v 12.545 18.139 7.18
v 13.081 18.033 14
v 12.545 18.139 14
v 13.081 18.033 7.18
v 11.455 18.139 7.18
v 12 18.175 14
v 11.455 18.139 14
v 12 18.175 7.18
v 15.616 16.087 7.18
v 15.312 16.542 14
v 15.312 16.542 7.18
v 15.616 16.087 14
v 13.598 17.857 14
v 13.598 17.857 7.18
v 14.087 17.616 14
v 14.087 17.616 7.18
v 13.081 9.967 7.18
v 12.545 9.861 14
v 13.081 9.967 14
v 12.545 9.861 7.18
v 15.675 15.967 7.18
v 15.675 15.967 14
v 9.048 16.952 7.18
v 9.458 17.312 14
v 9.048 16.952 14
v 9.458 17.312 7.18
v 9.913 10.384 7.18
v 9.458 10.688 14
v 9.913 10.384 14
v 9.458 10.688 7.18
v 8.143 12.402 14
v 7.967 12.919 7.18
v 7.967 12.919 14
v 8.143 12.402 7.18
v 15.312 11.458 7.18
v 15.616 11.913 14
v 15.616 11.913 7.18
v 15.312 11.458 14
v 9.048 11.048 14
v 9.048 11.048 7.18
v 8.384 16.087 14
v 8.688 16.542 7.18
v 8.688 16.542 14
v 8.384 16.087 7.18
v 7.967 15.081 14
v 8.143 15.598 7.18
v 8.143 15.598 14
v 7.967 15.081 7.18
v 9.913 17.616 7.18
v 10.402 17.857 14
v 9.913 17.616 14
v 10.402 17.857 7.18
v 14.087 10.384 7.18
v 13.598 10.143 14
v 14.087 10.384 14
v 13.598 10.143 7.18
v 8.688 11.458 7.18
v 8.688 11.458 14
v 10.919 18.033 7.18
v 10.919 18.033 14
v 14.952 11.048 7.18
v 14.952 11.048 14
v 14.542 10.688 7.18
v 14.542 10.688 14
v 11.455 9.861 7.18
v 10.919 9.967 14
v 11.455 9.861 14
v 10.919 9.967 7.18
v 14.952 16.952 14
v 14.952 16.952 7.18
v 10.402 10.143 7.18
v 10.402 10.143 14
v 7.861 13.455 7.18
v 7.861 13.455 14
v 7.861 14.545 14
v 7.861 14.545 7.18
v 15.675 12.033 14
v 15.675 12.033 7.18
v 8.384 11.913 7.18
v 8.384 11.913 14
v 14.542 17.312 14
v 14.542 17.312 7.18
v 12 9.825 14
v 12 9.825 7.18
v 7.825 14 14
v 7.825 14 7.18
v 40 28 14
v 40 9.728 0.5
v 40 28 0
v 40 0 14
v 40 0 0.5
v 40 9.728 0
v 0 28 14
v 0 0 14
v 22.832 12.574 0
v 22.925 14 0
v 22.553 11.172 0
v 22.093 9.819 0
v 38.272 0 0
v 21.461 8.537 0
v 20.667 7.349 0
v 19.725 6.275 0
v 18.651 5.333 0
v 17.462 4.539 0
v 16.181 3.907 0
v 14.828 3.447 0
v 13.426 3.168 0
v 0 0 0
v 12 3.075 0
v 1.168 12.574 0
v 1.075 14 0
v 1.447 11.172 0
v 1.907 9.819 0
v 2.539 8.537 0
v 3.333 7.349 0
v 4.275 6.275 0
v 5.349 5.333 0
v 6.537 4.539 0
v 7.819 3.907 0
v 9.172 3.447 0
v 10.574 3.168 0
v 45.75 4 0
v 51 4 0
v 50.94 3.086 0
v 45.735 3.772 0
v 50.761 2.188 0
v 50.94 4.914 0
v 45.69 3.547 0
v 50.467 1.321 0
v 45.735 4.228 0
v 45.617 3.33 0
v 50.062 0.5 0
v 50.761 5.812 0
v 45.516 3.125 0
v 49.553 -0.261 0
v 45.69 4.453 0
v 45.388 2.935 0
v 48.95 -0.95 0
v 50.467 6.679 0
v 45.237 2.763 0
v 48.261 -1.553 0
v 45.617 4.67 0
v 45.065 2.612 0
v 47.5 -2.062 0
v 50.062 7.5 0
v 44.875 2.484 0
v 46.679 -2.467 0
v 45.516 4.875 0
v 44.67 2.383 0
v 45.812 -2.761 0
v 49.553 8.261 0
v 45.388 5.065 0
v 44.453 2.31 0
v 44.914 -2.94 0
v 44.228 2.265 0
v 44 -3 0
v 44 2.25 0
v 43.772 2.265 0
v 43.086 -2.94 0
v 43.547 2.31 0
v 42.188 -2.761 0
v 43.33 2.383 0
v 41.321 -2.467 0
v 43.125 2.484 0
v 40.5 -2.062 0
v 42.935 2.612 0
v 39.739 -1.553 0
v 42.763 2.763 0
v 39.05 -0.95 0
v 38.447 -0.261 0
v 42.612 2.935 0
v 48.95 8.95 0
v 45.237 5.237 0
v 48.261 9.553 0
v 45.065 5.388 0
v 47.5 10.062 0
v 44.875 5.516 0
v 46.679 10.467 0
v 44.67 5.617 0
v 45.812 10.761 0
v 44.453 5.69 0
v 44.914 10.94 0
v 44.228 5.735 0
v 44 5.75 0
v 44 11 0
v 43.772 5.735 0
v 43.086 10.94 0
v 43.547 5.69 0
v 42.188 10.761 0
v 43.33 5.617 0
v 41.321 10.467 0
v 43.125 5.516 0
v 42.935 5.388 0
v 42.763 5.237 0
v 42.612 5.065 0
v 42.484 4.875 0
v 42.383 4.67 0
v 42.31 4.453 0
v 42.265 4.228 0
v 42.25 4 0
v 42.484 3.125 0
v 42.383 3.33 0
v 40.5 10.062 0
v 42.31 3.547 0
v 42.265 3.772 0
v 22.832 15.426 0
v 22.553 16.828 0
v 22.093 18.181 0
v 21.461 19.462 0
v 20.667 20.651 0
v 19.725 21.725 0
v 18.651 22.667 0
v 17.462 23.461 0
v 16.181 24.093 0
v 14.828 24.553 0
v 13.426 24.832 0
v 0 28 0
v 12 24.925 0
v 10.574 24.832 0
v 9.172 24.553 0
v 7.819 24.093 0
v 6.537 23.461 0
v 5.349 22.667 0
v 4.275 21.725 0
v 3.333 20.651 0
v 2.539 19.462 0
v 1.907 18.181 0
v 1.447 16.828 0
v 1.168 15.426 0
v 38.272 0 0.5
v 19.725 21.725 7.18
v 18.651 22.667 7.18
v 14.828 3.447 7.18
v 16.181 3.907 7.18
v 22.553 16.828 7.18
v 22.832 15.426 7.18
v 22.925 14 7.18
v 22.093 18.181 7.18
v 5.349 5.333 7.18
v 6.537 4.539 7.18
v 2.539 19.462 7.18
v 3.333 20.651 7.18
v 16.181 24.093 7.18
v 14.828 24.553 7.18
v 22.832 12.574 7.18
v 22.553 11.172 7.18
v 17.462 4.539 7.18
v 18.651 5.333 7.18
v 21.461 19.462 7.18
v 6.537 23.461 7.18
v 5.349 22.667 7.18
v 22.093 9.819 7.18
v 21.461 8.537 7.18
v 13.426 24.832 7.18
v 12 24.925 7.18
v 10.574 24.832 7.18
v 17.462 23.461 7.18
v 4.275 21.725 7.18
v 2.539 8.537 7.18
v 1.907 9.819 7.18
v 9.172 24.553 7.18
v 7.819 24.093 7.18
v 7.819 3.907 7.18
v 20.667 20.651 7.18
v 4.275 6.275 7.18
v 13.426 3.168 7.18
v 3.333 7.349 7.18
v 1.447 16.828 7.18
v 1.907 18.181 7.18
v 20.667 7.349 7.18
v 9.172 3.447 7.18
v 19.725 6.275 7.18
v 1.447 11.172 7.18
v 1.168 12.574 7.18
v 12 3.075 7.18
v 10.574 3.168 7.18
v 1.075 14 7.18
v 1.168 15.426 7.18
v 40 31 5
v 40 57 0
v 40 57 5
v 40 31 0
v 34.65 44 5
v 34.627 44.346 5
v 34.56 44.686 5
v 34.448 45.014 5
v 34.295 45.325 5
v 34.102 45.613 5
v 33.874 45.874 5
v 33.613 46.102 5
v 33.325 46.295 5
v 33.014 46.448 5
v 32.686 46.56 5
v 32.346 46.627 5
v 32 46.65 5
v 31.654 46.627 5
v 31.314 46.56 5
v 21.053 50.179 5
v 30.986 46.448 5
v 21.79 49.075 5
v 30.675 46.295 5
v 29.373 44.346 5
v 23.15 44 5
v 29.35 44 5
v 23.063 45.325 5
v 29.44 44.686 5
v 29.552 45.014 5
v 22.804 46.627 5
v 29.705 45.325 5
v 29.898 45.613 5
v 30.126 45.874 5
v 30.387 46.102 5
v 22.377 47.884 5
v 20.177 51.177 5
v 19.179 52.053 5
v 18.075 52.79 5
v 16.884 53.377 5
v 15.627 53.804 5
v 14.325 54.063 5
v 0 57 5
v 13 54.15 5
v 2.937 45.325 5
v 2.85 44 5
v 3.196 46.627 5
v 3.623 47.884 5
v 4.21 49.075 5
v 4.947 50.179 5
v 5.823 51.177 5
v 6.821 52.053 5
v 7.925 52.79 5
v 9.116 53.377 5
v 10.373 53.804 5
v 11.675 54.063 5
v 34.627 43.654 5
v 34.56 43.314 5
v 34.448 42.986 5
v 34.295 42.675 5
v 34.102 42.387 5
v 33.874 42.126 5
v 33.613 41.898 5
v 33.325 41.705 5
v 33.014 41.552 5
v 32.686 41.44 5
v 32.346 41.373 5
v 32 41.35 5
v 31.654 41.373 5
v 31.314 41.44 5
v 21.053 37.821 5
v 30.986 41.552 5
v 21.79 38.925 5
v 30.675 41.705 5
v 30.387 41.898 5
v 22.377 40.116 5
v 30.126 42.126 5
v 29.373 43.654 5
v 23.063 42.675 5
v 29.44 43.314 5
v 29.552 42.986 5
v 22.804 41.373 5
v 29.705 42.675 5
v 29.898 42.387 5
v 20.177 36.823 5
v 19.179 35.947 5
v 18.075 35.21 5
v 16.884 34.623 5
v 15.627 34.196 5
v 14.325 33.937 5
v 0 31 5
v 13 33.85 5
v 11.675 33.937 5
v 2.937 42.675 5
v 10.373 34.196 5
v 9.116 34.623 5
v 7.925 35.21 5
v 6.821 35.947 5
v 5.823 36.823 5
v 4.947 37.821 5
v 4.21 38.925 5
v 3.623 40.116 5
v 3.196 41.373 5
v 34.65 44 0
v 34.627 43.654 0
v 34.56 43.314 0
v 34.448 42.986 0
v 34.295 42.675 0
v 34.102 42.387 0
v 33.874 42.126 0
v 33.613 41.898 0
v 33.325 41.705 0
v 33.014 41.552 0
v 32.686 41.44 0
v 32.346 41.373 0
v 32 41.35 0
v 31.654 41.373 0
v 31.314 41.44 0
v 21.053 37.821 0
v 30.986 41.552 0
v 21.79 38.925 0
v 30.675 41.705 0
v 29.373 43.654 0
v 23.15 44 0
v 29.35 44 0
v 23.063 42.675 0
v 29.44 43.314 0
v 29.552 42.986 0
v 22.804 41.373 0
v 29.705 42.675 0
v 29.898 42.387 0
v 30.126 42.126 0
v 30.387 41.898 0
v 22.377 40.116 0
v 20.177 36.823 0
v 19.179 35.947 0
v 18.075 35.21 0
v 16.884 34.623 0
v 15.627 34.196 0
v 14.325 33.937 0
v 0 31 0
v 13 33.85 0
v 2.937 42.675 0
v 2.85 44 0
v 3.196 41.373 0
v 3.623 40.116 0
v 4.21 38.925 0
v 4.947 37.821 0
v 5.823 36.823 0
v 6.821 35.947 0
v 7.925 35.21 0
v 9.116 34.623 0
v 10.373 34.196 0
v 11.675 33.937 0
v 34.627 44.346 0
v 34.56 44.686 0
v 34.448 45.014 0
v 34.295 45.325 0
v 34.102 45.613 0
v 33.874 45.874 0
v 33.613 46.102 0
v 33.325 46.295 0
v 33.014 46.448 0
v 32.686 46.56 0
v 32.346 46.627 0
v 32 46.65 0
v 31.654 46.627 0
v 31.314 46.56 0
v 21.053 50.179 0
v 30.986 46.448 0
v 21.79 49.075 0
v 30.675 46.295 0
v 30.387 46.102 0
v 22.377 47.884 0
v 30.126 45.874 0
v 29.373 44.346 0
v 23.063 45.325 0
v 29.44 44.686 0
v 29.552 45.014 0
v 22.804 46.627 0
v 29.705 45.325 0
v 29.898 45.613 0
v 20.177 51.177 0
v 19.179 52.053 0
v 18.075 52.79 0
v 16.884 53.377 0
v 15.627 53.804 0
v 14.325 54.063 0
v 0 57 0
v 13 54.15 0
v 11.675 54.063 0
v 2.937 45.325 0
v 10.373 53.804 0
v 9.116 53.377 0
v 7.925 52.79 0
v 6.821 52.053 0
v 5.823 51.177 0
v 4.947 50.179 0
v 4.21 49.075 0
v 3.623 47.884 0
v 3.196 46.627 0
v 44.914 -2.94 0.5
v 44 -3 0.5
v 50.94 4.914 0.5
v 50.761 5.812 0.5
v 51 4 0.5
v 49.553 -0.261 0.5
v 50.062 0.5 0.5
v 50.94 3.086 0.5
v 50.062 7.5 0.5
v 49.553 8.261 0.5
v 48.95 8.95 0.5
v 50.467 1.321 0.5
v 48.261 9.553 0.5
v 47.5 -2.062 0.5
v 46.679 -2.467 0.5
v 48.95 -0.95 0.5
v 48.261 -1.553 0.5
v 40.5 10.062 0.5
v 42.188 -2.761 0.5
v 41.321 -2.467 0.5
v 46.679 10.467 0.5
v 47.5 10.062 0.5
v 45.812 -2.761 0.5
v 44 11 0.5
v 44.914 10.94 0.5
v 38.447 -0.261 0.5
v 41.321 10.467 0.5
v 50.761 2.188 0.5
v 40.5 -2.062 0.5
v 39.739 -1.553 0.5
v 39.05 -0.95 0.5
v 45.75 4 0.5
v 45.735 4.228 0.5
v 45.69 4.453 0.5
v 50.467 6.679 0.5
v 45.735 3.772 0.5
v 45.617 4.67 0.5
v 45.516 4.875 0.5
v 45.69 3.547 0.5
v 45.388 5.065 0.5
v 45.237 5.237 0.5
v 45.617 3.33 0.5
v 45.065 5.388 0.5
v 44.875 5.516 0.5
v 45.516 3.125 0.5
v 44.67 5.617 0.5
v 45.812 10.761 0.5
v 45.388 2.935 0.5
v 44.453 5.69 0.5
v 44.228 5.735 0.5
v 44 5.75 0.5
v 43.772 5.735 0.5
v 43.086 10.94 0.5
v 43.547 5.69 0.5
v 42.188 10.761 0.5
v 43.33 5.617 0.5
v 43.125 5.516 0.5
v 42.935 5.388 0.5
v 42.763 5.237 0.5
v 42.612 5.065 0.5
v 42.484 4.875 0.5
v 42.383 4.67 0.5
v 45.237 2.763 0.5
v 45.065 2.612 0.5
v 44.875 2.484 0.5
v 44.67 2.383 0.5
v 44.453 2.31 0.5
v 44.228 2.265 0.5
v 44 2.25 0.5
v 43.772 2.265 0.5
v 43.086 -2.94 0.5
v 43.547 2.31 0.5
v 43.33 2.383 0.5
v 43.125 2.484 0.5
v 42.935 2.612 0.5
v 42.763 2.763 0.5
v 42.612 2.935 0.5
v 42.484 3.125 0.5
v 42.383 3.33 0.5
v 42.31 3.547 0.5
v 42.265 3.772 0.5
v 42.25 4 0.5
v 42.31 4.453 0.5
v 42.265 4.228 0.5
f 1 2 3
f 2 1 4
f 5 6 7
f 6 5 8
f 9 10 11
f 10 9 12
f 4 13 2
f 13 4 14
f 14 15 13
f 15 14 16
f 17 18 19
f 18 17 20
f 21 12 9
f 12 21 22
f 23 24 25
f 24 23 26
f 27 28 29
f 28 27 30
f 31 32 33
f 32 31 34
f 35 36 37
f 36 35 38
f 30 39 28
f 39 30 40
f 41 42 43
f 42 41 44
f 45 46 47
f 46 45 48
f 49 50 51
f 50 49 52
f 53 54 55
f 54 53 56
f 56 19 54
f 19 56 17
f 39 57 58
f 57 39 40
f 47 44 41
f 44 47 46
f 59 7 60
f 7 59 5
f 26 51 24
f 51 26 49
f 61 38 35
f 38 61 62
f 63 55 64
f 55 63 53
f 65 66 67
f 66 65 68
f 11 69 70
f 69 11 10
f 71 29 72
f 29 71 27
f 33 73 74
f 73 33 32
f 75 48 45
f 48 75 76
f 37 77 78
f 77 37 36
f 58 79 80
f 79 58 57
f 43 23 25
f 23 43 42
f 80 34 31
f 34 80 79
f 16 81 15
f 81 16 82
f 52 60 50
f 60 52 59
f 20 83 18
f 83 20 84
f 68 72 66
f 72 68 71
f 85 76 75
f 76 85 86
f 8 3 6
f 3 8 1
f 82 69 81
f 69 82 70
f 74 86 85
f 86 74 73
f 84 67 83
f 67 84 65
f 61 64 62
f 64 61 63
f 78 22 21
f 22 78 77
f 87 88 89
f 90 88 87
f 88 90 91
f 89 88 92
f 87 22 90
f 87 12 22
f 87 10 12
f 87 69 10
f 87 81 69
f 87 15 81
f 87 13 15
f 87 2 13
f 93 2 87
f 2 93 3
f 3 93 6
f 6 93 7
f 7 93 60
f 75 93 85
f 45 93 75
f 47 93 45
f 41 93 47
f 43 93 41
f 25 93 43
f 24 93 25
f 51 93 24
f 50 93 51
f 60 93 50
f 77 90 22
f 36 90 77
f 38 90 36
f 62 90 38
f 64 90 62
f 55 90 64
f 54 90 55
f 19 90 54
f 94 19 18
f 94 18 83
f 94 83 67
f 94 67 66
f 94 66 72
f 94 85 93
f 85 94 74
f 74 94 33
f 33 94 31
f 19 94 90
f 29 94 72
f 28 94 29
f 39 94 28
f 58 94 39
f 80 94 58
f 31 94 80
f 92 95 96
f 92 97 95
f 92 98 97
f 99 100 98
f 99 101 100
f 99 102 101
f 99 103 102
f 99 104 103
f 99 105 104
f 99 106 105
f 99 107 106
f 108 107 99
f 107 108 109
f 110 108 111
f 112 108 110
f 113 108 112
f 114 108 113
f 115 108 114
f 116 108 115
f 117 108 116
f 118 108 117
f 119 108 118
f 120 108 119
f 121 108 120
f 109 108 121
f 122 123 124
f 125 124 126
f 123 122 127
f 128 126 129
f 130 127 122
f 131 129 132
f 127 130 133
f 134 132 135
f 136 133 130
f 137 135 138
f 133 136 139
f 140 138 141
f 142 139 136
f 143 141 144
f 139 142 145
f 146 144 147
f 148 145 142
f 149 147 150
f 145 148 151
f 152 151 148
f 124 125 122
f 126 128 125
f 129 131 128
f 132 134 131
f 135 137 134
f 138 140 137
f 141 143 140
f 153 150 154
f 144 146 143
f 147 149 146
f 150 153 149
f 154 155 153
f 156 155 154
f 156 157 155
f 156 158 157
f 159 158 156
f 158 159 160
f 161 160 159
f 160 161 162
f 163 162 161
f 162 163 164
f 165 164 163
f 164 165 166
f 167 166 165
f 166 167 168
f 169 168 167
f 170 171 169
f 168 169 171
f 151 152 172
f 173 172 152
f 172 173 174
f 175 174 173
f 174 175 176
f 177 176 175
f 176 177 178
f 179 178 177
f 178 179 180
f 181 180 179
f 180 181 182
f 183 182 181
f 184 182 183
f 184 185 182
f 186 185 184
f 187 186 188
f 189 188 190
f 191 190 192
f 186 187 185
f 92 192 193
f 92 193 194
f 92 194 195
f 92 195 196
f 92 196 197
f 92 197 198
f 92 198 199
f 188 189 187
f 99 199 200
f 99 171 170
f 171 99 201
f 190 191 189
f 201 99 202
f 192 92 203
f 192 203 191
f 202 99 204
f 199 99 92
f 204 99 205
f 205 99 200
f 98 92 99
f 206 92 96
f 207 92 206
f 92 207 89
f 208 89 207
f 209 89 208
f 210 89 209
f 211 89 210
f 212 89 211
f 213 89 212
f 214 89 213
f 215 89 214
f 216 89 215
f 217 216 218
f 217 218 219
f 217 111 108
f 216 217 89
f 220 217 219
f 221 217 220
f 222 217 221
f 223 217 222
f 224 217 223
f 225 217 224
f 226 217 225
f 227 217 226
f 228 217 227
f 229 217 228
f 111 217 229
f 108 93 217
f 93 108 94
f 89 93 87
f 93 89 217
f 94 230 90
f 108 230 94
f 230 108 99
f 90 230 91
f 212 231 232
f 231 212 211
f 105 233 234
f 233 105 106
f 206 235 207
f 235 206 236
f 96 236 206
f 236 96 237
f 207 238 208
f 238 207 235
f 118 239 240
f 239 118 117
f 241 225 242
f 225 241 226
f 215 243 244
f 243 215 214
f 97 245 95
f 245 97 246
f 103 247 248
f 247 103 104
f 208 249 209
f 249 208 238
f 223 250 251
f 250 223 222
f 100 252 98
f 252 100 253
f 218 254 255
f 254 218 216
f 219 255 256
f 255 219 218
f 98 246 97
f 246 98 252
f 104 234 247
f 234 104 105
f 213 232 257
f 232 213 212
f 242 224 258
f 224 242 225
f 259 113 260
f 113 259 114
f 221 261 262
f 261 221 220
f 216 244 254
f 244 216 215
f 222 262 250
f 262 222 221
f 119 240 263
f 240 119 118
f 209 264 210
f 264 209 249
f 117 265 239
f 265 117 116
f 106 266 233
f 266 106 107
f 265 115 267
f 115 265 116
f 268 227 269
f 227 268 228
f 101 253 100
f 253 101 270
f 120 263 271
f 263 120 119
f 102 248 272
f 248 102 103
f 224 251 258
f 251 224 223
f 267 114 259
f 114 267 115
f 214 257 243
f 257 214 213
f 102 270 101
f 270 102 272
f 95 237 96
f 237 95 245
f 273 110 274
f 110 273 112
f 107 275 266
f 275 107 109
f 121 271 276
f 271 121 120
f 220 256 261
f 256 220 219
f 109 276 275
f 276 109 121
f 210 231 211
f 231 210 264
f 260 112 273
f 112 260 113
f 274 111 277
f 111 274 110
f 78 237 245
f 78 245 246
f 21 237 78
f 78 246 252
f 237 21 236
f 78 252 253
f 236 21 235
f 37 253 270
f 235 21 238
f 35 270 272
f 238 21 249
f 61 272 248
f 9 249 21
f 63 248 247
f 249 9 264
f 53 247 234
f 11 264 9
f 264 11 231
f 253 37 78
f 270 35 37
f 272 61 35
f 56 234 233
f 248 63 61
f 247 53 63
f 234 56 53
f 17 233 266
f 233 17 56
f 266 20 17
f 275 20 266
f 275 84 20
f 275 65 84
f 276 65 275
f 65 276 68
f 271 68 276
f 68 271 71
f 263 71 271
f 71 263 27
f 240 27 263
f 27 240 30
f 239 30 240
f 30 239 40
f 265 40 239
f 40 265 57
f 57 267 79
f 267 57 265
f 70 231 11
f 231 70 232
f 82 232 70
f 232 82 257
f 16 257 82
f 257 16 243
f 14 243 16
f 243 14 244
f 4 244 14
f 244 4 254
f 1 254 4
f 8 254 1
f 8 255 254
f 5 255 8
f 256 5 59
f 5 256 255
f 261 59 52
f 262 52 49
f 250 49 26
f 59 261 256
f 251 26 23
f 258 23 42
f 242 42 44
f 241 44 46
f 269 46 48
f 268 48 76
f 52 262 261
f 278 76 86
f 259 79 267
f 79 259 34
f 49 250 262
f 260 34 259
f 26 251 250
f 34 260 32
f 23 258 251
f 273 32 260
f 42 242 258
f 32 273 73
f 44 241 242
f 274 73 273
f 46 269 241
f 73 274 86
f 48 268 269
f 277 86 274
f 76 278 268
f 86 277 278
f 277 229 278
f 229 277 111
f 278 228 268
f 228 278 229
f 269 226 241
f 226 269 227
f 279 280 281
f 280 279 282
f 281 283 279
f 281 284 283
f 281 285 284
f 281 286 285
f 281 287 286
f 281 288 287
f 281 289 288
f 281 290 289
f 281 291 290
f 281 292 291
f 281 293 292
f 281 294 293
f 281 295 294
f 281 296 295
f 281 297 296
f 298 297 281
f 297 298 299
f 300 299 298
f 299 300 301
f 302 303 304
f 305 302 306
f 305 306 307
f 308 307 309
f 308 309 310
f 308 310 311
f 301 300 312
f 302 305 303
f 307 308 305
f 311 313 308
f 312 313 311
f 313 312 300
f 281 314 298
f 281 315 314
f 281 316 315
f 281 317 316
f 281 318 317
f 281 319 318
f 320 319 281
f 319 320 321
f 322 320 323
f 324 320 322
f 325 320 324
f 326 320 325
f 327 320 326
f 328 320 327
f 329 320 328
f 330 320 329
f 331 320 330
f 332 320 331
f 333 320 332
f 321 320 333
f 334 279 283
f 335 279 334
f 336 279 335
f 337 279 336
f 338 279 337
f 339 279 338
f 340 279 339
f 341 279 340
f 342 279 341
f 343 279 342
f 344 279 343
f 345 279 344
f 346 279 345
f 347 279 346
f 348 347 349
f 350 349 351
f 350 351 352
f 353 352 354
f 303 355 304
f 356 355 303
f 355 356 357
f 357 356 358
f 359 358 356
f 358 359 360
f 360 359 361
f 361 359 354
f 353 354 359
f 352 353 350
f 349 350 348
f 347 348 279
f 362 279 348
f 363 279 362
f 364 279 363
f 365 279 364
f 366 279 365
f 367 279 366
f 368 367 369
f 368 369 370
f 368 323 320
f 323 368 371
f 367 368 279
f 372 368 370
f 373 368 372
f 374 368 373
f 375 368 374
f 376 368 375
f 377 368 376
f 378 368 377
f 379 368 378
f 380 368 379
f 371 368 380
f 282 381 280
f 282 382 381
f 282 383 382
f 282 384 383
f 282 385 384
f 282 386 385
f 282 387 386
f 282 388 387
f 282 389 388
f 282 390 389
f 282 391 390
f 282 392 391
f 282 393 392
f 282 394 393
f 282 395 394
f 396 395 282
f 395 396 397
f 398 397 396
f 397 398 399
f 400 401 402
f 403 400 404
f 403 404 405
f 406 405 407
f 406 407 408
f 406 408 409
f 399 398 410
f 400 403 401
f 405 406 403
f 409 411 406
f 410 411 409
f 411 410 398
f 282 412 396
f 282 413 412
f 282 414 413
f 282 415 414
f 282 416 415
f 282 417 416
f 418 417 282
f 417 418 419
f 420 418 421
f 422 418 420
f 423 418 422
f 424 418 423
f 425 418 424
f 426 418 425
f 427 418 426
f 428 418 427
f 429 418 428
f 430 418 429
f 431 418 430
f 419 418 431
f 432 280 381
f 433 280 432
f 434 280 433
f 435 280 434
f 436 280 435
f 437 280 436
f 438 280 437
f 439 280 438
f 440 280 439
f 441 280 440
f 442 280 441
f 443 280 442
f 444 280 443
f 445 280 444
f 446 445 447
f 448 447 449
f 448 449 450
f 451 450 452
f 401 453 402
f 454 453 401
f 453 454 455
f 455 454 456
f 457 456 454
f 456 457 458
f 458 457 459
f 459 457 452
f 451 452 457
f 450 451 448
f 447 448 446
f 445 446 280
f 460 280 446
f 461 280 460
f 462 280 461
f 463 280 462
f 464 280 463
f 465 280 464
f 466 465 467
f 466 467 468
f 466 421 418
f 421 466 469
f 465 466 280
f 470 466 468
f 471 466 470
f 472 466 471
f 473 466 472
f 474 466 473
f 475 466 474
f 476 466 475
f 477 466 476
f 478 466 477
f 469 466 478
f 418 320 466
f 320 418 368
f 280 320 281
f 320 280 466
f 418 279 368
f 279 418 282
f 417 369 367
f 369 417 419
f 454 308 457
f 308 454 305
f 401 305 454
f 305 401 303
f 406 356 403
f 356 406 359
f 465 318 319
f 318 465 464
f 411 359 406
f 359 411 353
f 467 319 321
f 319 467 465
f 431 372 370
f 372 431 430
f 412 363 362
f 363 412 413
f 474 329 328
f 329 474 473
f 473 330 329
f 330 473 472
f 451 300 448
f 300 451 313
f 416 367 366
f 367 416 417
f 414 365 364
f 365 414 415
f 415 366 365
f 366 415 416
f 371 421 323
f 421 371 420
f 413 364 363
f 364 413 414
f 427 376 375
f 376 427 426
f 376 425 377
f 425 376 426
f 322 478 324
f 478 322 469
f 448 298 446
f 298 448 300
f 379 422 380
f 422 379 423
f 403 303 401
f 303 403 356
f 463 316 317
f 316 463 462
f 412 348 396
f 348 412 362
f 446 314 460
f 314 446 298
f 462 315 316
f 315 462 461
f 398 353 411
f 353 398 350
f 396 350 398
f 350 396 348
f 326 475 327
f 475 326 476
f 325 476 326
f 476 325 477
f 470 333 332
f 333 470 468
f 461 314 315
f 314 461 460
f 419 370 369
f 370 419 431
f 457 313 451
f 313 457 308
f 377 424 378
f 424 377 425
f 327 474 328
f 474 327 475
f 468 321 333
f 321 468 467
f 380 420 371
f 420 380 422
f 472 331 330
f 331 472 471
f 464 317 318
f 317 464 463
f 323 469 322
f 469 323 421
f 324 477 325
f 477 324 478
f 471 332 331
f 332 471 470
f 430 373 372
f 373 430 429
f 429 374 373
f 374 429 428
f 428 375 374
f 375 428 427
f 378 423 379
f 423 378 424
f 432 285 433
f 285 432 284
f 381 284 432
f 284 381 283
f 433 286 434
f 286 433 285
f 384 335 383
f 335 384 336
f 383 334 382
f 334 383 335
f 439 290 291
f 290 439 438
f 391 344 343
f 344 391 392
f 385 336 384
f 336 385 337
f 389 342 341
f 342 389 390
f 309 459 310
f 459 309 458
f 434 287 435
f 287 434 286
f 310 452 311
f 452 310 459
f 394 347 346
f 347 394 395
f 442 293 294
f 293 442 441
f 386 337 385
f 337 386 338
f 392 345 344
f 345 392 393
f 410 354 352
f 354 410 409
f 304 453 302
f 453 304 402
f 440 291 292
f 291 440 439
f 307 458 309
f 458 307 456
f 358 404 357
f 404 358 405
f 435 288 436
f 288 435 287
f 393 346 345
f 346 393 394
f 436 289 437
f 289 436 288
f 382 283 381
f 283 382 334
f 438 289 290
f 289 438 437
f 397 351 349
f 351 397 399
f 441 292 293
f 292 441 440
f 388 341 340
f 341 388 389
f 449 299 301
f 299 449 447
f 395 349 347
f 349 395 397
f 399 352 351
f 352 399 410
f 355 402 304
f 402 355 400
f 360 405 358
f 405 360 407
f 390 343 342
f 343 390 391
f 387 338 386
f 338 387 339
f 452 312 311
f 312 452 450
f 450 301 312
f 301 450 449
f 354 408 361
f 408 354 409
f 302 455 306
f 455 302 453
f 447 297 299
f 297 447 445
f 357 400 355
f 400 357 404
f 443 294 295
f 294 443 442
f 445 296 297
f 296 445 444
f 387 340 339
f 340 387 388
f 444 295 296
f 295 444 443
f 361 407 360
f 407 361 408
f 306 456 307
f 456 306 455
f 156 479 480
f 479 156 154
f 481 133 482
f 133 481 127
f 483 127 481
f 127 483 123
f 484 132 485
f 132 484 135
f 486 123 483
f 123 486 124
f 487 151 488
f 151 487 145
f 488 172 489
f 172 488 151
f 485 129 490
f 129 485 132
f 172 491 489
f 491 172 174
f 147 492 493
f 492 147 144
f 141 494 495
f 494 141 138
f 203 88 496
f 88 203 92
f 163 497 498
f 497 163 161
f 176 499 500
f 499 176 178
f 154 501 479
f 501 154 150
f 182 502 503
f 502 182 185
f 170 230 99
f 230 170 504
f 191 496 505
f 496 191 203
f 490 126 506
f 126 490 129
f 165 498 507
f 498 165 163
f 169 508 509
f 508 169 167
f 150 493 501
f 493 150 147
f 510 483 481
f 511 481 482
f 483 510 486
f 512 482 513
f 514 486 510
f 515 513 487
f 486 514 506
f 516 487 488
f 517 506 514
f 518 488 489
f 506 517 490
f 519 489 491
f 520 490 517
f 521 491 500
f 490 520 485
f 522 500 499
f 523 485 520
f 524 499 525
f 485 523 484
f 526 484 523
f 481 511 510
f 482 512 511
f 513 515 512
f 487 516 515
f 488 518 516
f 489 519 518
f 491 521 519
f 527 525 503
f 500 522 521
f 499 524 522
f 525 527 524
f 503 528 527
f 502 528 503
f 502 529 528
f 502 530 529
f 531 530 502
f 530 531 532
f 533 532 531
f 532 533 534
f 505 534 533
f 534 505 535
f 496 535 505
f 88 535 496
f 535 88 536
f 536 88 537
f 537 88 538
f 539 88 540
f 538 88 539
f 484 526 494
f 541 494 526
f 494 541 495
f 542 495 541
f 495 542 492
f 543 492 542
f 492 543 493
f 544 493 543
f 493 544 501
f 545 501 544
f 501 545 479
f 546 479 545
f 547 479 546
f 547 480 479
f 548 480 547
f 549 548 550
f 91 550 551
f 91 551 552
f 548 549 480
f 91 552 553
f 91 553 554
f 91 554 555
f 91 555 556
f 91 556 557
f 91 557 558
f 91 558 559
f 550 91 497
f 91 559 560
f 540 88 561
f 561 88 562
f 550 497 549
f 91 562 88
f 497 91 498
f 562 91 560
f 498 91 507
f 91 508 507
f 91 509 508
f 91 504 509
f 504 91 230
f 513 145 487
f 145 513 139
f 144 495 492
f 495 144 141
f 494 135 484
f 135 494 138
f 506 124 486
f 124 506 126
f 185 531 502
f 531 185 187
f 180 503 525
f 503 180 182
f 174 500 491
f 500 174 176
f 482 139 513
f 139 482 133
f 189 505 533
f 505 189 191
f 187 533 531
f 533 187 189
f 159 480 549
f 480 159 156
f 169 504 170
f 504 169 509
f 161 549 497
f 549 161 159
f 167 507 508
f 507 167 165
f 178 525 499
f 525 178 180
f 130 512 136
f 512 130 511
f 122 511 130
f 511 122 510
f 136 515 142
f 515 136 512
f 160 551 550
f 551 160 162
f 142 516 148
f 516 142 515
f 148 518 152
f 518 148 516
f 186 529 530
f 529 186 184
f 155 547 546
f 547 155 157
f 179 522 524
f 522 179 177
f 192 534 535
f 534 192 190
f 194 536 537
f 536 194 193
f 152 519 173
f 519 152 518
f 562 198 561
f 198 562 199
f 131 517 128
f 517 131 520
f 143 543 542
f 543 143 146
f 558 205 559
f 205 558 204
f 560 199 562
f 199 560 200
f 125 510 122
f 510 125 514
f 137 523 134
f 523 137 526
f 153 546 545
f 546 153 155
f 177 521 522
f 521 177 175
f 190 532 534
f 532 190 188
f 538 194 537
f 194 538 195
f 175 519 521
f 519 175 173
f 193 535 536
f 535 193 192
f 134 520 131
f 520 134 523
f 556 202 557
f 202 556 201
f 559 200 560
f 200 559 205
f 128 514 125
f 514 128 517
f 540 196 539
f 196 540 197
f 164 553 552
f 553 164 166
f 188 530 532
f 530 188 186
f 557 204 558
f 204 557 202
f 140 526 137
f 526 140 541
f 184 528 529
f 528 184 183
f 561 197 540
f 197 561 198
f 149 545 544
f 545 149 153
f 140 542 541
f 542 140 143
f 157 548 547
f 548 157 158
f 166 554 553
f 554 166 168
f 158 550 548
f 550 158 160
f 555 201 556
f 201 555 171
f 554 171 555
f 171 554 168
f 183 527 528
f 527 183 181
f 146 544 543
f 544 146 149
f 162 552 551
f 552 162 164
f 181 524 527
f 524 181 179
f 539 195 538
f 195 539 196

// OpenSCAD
// file: parameters.scad
// =============================================================================
// Gen-CF — nightly 2026-10-14 (physics_scorer, honest magpylib watts)
// Stator-only upgrade for an existing Gen-CA: the R84 arcs, hubs and Ø194 steel stay as they are; a new annular 12-bobbin stator with 4.65 mm copper (Gen-CD-style thin window) and r63–105 bobbins replaces the old r64–104 × 4.95 mm stator, together with a shorter gap sleeve and matching frame rods / bridges. Frame rods pushed to R108.5 for ≥1.0 mm web to the bays. No new magnets or steel. Scans showed no R84 stator beats Gen-CA’s own 8.492 W; this kit is the best distinct modular swap (≈8.41 W scan, ≈375 m).
// Clocking 0 deg (magnets N facing S) + D-flat keyed bore + index notch + flip-symmetric hole map.
// Windable 2-piece bobbin; turns = physics_scorer turns_fit; copper only between flanges.
// Steel back-iron: 2× Ø194 × 4.76 mm (3/16") mild-steel discs (steel_backiron_disc.dxf); magnets sit ON the steel
// (through-pockets) -> score with --back-iron. Night 2026-10-14.
// =============================================================================
topology            = "dual_rotor";

// --- Wire / winding (physics_scorer winding-fit) -------------------------------
wire_awg            = 26;
wire_od             = 0.45;     // insulated OD mm (bare 0.405)
fill_realistic      = 0.65;     // insulated-wire area / window (DENSE layered wind with a jig; scorer cap 0.65)
turns               = 347;       // = physics_scorer turns_fit (do NOT raise)
coil_former_type    = "bobbin";
coil_core_inset     = 18.26;     // radial copper build: hub = copper boundary inset by this
wind_build_axial    = 0.0;      // nothing proud of the flanges
wind_build_radial   = 0.0;

// --- Bobbin (base + lid) ---------------------------------------------------------
coil_id_r           = 63.00;    // copper boundary sector
coil_od_r           = 105.00;
span_deg            = 26.82;    // = pitch - 2*asin((wall+0.85)/coil_id_r) -> >=1.2 mm stator web
former_web          = 4.65;     // copper height between flanges (TALL copper: steel keeps Bz up)
flange_t            = 0.80;     // >= 0.8 mm FDM wall rule (tall winds push on the flanges)
wall                = 0.80;     // flange lip beyond copper
former_bare_h       = former_web + 2 * flange_t;
coil_envelope_h     = former_bare_h + 2 * wind_build_axial;
tab_w               = 7.0;
tab_len             = 7.0;
tab_h               = former_bare_h / 2;
pin_d               = 1.9;      // 1.75 mm filament locating pin
coil_mount_r        = coil_od_r + 0.2 + 4.0;
lead_y              = 1.6;
lead_slot_w         = 0.9;
lead_groove_d       = 0.6;

// --- Gap -------------------------------------------------------------------------
run_clear           = 0.50;     // rotor face -> flange
gap_spacer_h        = run_clear + wind_build_axial;
m2m                 = coil_envelope_h + 2 * run_clear;   // rotor face to rotor face (= gap_sleeve length)

// --- Stator ----------------------------------------------------------------------
coil_stations       = 12;
bay_clear           = 0.35;     // 0.35 mm: bobbin BASES print IN PLACE inside the stator bays (print-in-place gap), then pop out
stator_thick        = former_bare_h;                        // bobbins flush both faces
stator_od           = 228;
shaft_clear_stator  = 14.0;     // stator is static; gap sleeve OD 12 spins inside
stator_ir           = 57.85;    // ANNULAR stator: open centre (nested one-plate pack); inner rim 4.0 mm

// --- Rotor(s) --------------------------------------------------------------------
magnet_Br           = 1.43;     // N52
magnet_d_large      = 20.0;
magnet_h_large      = 5.0;      // one O20x5 per pocket
magnet_h_small      = 5.0;      // unused: no O5 pockets in this kit
halbach_magnetisation = "none";  // NO O5 assist magnets in this kit (scan: they lower the 4-pole score)
rotor_b_same_axis   = true;     // same-index magnets share one axis: N faces S across the gap
large_pocket_d      = 20.3;
small_pocket_d      = 5.3;
pocket_h            = 5.00;     // THROUGH the carrier: magnet back face sits on the steel disc (FLUSH seat: carrier = magnet height, magnet face level with the rotor face)
large_n             = 8;
R_large             = 84.0;
small_r_list        = [];       // no O5 pockets
carrier_od          = 194.0;
ring_ir             = 70.85;    // RING rotor: PLA magnet ring r ring_ir..carrier_od/2 (steel disc = structural rotor)
hub_flange_od       = 74.0;     // separate rotor_hub flange (inside the ring, flush with the ring face)
csk_d               = 6.6;      // M3 countersunk head pocket (ISO 10642 head 6.0 nominal) on the stator face
csk_depth           = 1.55;     // = (csk_d - m3_clear) / 2: 90 deg cone; head sits 0.3 mm below the face
n_seg               = 8;        // magnet-carrier ARCS per rotor (segmented carrier)
seg_deg             = 360 / n_seg;
seg_start           = -22.5;   // arc edge angle (between pocket 0 and its clamp bolt)
seg_kerf_deg        = 0.4;      // gap between neighbouring arcs on the steel
carrier_thick       = pocket_h;
hub_h               = 12.0;     // > steel_t + insert: radial set-screw clears the steel
hub_od              = 24.0;     // slim hub so the M4 brace rods fit at R~18 inside the coil ring
hub_insert_d        = 4.0;      // M3 heat-set insert, radial, bears on the D-flat
rotor_b_offset_deg  = 0.0;      // CLOCKING: magnets directly opposite
shaft_key           = "dflat";
dflat_depth         = 0.5;      // 8 mm shaft with 0.5 mm flat (7.5 across flat)
index_notch_d       = 3.0;

// --- Steel back-iron (buyable laser-cut) -------------------------------------------
steel_t             = 4.76;      // mild steel thickness (image method ignores it; sized from steel_flux.py so the return path stays well below saturation)
steel_center_hole   = 26.0;     // slips over the rotor hub (OD 24)
steel_od            = carrier_od;   // steel disc OD = rotor carrier OD

// --- Modular MAX interface ----------------------------------------------------------
shaft_bore          = 8.35;
dflat_x             = 4.0 - dflat_depth + (shaft_bore - 8.0) / 2;
bearing_d           = 21.85;
bearing_h           = 7.2;
m3_clear            = 3.5;
bolt_r_inner        = 30.0;     // M3 steel-disc clamp bolts (inside the magnet ring)
bolt_n_inner        = 4;
bolt_inner_angles   = [0, 90, 180, 270];
bolt_r_outer        = 84.0;     // second M3 steel-disc clamp ring
bolt_outer_angles   = [22.5, 67.5, 112.5, 157.5, 202.5, 247.5, 292.5, 337.5];
flange_bolt_r       = 108.5;     // frame rods: OUTSIDE the rotor OD (rotors spin inside them)
flange_bolt_n       = 4;
flange_bolt_offset  = 45.00;    // between coil stations -> never cuts a lead groove/tab
brace_r             = 18.0;
brace_d             = 4.3;      // temporary M4 jack rods (assembly only)
brace_n             = 4;
brace_angles        = [45, 135, 225, 315];          // flip-symmetric

spacer_pad_od       = 14.0;
spacer_pad_id       = m3_clear;
endbell_od          = 227.0;
endbell_thick       = 8.0;
endbell_shaft_clear = 10.0;
collar_h            = 10.0;
standoff_od         = 9.0;
frame_standoff_h    = run_clear + carrier_thick + hub_h + collar_h + 2.0;
sleeve_od           = 12.0;
plate_max_mm        = 410;

$fn = 64;
// main file
// Gen-CF — fit coupon: O20/O5 THROUGH pockets at carrier thickness (test on a steel offcut), 608 seat,
// D-flat bore, gap shim, and one bobbin-bay slice (bobbin footprint + bay_clear) to test former fit.
include <parameters.scad>;
$fn = 48;
// D-flat keyed bore: flat faces +X (angle 0 = magnet pocket 0 = index notch)
module dflat_bore(h) {
    intersection() {
        cylinder(d=shaft_bore, h=h);
        translate([-shaft_bore, -shaft_bore, 0]) cube([shaft_bore + dflat_x, 2*shaft_bore, h]);
    }
}
module sector_2d(r_in, r_out, ang) {
    polygon([
        for (a = [-ang/2 : ang/24 : ang/2]) [r_in*cos(a), r_in*sin(a)],
        for (a = [ang/2 : -ang/24 : -ang/2]) [r_out*cos(a), r_out*sin(a)]
    ]);
}
module footprint_2d() { offset(r=wall) sector_2d(coil_id_r, coil_od_r, span_deg); }
module hub_2d()       { offset(delta=-coil_core_inset) sector_2d(coil_id_r, coil_od_r, span_deg); }

block_w = 40; block_d = 28; block_h = 14;
difference() {
    cube([block_w, block_d, block_h]);
    translate([12, block_d/2, -0.02]) cylinder(d=bearing_d, h=bearing_h);
    translate([12, block_d/2, -0.1]) dflat_bore(block_h + 1);
}
translate([0, block_d + 3, 0]) difference() {
    cube([40, 26, carrier_thick]);
    translate([13, 13, -0.1]) cylinder(d=large_pocket_d, h=carrier_thick + 0.2);
    translate([32, 13, -0.1]) cylinder(d=small_pocket_d, h=carrier_thick + 0.2);
}
translate([block_w + 4, 4, 0])
    difference() {
        cylinder(d=spacer_pad_od, h=gap_spacer_h);
        translate([0, 0, -0.1]) cylinder(d=spacer_pad_id, h=gap_spacer_h + 0.2);
    }
